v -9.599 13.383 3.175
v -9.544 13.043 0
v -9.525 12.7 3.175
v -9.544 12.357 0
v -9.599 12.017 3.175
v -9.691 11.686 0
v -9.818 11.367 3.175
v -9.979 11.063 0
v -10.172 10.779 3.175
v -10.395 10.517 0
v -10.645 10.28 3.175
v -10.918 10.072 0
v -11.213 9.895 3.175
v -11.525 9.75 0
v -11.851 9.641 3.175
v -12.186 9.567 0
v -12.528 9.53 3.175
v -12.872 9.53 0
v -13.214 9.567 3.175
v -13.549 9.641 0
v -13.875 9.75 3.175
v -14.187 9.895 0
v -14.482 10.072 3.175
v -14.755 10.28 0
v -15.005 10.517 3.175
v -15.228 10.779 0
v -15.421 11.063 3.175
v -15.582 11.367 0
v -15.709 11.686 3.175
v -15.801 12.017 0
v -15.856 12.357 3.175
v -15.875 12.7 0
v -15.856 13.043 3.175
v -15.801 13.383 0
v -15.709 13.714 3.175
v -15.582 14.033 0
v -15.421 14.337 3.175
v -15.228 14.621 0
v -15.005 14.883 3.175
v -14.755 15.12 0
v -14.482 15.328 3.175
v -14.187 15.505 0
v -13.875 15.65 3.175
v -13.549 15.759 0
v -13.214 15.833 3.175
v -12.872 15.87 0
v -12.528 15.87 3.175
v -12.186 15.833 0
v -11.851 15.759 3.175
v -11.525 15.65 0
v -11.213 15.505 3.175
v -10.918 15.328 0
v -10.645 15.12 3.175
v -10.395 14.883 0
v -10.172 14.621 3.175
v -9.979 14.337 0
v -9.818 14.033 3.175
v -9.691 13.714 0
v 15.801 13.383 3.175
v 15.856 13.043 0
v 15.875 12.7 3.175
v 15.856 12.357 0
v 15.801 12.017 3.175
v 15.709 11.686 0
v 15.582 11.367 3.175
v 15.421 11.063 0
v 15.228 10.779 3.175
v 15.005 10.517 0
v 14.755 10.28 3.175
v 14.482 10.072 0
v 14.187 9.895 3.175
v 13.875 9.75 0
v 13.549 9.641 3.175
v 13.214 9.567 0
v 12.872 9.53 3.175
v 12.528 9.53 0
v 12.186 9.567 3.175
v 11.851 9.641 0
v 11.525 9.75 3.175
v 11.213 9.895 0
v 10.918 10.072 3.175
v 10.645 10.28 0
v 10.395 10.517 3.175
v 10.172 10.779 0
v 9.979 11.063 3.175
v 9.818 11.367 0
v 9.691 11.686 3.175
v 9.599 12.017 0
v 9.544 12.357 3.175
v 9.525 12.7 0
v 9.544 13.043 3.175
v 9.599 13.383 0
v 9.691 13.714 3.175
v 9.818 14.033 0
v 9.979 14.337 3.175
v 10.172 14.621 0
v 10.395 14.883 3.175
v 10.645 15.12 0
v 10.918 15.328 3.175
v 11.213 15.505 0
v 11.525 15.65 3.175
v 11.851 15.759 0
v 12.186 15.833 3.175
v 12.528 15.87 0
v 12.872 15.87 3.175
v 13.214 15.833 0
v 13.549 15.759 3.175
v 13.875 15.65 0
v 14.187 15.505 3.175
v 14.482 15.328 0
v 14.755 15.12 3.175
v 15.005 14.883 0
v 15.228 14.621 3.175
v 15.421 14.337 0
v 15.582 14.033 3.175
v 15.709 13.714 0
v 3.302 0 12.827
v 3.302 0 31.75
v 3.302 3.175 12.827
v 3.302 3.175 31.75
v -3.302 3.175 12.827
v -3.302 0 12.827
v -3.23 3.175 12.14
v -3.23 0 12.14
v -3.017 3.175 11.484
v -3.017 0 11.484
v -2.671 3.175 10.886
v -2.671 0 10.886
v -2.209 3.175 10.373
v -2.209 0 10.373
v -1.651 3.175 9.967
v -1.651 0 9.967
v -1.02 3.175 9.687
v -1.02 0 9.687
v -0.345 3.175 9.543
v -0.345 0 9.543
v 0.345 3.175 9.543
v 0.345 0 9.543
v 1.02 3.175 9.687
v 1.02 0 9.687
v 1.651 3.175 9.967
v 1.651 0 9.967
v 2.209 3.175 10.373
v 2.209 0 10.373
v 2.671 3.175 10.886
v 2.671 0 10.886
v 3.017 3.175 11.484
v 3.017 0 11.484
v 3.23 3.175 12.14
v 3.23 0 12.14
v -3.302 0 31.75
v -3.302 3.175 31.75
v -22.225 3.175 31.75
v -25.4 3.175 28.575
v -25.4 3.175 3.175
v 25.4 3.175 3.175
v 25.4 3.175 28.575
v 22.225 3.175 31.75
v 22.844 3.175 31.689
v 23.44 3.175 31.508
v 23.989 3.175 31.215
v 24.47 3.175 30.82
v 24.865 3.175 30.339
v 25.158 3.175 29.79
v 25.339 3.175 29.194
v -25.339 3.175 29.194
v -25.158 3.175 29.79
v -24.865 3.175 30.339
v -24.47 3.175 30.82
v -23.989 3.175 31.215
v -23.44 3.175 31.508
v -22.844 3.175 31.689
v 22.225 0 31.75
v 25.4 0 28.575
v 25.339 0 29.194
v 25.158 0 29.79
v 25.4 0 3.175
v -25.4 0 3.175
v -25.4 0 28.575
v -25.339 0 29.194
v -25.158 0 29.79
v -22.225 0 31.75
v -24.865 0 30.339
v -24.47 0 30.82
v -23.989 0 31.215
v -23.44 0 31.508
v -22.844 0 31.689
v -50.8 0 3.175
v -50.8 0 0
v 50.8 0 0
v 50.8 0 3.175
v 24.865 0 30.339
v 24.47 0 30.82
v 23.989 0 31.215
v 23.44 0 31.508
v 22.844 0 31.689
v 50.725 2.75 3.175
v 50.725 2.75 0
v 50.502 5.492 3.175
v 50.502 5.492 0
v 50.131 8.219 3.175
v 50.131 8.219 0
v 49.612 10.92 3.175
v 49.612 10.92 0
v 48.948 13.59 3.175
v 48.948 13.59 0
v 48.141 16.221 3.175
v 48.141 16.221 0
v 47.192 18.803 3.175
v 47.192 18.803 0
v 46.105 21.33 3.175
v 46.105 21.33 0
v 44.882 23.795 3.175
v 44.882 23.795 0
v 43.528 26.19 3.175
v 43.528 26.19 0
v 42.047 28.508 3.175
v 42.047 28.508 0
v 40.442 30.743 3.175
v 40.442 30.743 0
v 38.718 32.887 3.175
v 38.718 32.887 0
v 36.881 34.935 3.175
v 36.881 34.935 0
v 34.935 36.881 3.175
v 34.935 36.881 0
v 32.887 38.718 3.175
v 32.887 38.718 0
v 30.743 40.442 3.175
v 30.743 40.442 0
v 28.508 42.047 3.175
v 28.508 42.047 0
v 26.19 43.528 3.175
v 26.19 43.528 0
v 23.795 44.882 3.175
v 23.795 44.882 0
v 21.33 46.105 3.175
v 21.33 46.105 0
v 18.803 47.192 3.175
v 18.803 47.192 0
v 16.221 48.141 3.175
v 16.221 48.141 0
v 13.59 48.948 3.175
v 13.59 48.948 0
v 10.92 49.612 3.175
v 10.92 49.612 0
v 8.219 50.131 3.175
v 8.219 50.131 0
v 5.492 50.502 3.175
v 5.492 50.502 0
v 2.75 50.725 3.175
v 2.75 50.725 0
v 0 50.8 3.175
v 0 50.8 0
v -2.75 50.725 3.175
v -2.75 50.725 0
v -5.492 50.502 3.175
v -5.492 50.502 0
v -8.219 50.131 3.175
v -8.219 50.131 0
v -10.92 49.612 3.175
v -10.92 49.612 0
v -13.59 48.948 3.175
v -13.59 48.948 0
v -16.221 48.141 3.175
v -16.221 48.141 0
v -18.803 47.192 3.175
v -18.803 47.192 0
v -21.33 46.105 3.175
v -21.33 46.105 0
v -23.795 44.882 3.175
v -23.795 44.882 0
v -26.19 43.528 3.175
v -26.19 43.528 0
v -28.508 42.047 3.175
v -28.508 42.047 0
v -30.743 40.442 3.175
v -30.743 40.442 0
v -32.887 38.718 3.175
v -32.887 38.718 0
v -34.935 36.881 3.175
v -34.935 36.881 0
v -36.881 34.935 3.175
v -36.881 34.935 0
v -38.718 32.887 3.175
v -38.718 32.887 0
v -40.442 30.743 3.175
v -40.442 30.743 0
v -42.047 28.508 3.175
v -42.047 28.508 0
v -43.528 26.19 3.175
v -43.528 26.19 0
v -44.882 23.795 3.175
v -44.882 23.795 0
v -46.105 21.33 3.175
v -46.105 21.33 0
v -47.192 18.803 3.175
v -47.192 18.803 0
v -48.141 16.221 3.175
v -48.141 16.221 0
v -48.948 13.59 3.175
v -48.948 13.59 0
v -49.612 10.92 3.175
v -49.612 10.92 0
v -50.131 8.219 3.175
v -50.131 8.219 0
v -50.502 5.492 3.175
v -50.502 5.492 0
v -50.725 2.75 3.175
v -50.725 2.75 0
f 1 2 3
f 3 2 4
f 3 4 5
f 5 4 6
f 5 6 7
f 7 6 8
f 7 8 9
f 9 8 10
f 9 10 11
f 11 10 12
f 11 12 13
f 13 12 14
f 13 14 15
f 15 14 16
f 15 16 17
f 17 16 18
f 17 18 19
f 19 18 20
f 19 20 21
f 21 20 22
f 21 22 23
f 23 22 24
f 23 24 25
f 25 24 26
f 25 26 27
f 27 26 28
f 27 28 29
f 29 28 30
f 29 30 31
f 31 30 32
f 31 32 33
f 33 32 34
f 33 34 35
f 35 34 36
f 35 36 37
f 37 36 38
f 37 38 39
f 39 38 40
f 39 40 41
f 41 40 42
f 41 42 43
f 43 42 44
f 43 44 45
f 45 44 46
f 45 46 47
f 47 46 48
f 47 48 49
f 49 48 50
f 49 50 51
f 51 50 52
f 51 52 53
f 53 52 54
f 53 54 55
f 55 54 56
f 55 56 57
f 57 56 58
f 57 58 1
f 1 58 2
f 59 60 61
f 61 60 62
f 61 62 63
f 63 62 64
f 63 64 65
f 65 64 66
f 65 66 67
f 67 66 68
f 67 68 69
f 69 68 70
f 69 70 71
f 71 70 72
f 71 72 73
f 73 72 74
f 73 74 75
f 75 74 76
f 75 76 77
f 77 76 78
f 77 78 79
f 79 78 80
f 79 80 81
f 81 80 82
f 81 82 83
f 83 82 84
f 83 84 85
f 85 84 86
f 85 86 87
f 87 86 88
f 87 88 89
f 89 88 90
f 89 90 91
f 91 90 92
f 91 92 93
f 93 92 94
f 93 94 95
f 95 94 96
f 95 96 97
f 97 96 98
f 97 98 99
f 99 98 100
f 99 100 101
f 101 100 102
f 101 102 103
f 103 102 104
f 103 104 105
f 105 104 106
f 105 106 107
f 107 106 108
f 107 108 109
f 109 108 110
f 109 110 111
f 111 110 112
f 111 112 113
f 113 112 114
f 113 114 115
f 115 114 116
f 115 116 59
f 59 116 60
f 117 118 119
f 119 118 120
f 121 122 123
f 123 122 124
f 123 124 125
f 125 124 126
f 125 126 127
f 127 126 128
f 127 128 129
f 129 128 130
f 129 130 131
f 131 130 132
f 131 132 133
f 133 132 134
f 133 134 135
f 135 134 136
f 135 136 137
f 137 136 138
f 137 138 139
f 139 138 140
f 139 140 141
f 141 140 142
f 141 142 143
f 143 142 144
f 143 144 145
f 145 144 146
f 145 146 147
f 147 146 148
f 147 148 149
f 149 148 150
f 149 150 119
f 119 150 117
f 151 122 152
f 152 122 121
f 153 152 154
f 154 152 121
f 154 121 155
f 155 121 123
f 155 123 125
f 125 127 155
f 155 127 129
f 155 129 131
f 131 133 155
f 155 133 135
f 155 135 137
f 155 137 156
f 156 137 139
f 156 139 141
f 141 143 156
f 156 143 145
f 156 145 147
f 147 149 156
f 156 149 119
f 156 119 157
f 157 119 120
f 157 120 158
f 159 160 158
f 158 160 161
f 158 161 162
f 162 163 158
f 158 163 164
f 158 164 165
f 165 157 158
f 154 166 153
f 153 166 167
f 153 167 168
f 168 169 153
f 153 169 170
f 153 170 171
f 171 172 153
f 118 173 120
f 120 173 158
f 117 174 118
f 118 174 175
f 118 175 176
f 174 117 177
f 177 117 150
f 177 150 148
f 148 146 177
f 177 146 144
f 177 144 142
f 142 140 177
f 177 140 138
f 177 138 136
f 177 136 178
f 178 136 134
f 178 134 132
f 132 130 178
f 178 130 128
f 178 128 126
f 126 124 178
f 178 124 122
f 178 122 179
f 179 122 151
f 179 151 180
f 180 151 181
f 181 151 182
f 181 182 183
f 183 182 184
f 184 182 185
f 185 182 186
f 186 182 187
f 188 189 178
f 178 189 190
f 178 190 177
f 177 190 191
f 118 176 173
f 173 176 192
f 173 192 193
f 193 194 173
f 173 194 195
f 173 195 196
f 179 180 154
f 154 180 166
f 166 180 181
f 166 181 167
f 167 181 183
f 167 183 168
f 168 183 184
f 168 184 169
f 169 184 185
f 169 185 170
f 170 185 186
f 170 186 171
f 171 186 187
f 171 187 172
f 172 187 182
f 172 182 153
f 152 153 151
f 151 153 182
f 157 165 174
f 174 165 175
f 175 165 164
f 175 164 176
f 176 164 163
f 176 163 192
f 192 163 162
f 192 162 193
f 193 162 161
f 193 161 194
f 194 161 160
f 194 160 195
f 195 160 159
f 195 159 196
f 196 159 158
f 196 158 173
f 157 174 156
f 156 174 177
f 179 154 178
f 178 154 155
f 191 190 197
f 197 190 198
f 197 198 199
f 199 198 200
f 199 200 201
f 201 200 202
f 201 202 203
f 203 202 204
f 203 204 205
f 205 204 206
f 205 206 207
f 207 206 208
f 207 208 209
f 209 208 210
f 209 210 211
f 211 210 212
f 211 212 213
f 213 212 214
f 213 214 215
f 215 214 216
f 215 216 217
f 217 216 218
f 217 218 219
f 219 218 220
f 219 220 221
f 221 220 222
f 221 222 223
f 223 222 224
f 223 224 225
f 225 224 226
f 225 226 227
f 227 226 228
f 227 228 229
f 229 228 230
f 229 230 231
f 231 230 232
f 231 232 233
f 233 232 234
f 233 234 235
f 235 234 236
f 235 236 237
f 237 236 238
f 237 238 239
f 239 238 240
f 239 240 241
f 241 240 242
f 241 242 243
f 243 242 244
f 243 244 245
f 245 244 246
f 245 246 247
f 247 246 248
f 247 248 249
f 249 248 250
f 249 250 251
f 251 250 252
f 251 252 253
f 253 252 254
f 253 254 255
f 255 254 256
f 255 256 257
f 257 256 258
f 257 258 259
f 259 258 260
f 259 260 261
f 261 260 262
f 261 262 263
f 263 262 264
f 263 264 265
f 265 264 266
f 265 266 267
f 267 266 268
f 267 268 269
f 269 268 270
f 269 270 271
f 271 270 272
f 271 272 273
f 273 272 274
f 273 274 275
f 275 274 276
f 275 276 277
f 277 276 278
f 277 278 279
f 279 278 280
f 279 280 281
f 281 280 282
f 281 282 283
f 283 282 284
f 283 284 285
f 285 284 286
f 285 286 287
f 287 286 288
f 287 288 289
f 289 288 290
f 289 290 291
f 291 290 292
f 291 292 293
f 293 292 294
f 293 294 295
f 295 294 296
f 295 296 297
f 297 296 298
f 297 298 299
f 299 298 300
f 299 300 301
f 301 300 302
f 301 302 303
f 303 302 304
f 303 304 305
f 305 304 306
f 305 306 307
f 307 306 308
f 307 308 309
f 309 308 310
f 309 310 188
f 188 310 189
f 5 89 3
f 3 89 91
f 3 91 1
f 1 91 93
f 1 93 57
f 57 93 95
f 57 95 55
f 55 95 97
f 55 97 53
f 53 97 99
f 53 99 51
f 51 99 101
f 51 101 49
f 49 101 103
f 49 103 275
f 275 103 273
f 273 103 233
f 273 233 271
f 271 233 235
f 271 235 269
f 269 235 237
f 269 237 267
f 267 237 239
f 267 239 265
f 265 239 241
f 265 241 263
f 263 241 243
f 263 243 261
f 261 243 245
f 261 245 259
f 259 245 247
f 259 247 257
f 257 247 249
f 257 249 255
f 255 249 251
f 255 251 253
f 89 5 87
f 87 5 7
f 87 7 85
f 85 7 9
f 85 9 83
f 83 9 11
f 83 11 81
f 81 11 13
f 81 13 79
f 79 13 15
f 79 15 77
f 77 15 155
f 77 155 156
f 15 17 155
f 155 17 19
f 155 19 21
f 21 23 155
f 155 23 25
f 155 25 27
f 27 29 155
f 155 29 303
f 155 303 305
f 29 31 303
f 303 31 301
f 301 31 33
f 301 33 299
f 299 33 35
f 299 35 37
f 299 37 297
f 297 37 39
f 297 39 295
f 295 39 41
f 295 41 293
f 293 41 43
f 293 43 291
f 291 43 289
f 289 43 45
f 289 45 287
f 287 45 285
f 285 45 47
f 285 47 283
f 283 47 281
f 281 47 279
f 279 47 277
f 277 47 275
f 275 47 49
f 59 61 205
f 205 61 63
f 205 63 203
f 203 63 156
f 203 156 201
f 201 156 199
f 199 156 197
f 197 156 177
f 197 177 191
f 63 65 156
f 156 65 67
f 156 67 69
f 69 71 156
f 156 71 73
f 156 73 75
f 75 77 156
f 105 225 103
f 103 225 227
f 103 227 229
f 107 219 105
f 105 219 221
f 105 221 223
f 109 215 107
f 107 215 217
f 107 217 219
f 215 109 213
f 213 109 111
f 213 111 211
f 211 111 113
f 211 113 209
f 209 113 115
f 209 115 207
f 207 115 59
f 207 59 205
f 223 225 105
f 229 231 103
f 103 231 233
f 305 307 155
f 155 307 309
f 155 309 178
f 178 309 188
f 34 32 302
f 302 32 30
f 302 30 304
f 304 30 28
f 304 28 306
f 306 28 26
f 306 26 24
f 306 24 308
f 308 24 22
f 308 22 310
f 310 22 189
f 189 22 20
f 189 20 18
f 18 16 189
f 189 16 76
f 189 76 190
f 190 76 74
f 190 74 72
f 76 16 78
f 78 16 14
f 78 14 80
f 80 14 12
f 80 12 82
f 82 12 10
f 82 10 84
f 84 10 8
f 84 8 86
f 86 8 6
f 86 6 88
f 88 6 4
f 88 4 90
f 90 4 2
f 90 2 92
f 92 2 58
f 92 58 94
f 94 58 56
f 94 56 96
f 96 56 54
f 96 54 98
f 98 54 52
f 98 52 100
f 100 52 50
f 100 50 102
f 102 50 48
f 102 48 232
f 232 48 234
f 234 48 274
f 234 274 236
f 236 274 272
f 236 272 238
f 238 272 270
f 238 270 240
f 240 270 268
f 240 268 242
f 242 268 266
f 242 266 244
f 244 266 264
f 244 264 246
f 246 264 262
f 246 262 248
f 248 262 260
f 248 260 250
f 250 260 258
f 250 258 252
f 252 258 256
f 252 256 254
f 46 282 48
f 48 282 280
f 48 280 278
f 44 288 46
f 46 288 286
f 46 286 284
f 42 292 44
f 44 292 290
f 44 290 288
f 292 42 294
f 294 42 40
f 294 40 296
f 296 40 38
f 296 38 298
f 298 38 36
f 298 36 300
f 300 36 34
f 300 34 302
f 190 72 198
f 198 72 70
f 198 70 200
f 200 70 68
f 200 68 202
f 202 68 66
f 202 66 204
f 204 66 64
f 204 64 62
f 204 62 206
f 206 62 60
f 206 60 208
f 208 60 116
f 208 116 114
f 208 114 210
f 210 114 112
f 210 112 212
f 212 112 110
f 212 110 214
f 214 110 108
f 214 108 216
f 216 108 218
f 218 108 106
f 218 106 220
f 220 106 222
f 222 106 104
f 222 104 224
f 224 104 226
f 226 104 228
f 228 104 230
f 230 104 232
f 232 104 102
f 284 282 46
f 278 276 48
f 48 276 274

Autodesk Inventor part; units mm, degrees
ref_plane "YZ Plane" through (0, 0, 0) normal (1, 0, 0) x (0, 1, 0)
ref_plane "XZ Plane" through (0, 0, 0) normal (0, 1, 0) x (-1, 0, 0)
ref_plane "XY Plane" through (0, 0, 0) normal (0, 0, 1) x (1, 0, 0)
sketch "Sketch1" plane through (0, 0, 0) normal (0, 0, 1) x (1, 0, 0)
  arc A0 (50.8, 0) -> (-50.8, 0) centre (0, 0) ccw
  line L0 (0, 0) -> (50.8, 0)
  line L1 (0, 0) -> (-50.8, 0)
  dimension "d0" = 101.6
extrude "Extrusion1" add sketch "Sketch1" along normal blind 3.175
sketch "Sketch2" plane through (0, 0, 3.175) normal (0, 0, 1) x (1, 0, 0)
  arc A0 (50.8, 0) -> (-50.8, 0) centre (0, 0) ccw projected
  arc A1 (50.8, 0) -> (-50.8, 0) centre (0, 0) ccw projected
  line L0 (-50.8, 0) -> (50.8, 0) projected
  line L1 (0, 3.175) -> (0, 0) construction
  line L2 (0, 3.175) -> (25.4, 3.175)
  line L3 (25.4, 3.175) -> (25.4, 0)
  line L4 (-50.8, 0) -> (50.8, 0) projected
  line L5 (0, 3.175) -> (-25.4, 3.175)
  line L6 (-25.4, 3.175) -> (-25.4, 0)
  dimension "d6" = 25.4
  dimension "d7" = 3.175
extrude "Extrusion2" add sketch "Sketch2" along normal blind 28.575 contours L0 L6 L5 L2 L3
fillet "Fillet1" radius 3.175 2 edges at (25.4, 1.5875, 31.75) (-25.4, 1.5875, 31.75)
sketch "Sketch3" plane through (-25.4, 3.175, 3.175) normal (0, 1, 0) x (1, 0, 0)
  line L0 (25.4, 3.175) -> (25.4, -28.575) construction
  line L1 (3.175, -28.575) -> (47.625, -28.575) construction
  line L2 (25.4, -28.575) -> (25.4, -6.35) construction
  line L3 (22.098, -25.273) -> (22.098, -9.652)
  line L4 (28.702, -9.652) -> (28.702, -25.273)
  arc A0 (22.098, -25.273) -> (28.702, -25.273) centre (25.4, -25.273) ccw
  arc A1 (28.702, -9.652) -> (22.098, -9.652) centre (25.4, -9.652) ccw
  line L5 (0, 0) -> (50.8, 0) projected
  line L6 (22.098, -25.273) -> (22.098, -28.575)
  line L7 (28.702, -25.273) -> (28.702, -28.575)
  line L8 (22.098, -28.575) -> (28.702, -28.575)
  point P0 (25.4, -17.4625)
  dimension "d11" = 6.35
  dimension "d12" = 6.604
extrude "Extrusion3" cut sketch "Sketch3" against normal up to surface (3.175 mm away)
sketch "Sketch4" plane through (0, 0, 0) normal (0, 0, -1) x (-1, 0, 0)
  line L0 (0, 0) -> (0, 12.7) construction
  line L1 (0, 12.7) -> (12.7, 12.7) construction
  circle A0 centre (12.7, 12.7) radius 3.175
  circle A1 centre (-12.7, 12.7) radius 3.175
  dimension "d15" = 12.7
  dimension "d16" = 12.7
  dimension "d17" = 6.35
extrude "Extrusion4" cut sketch "Sketch4" against normal up to surface (3.175 mm away)
properties part number "Front with Plate"
